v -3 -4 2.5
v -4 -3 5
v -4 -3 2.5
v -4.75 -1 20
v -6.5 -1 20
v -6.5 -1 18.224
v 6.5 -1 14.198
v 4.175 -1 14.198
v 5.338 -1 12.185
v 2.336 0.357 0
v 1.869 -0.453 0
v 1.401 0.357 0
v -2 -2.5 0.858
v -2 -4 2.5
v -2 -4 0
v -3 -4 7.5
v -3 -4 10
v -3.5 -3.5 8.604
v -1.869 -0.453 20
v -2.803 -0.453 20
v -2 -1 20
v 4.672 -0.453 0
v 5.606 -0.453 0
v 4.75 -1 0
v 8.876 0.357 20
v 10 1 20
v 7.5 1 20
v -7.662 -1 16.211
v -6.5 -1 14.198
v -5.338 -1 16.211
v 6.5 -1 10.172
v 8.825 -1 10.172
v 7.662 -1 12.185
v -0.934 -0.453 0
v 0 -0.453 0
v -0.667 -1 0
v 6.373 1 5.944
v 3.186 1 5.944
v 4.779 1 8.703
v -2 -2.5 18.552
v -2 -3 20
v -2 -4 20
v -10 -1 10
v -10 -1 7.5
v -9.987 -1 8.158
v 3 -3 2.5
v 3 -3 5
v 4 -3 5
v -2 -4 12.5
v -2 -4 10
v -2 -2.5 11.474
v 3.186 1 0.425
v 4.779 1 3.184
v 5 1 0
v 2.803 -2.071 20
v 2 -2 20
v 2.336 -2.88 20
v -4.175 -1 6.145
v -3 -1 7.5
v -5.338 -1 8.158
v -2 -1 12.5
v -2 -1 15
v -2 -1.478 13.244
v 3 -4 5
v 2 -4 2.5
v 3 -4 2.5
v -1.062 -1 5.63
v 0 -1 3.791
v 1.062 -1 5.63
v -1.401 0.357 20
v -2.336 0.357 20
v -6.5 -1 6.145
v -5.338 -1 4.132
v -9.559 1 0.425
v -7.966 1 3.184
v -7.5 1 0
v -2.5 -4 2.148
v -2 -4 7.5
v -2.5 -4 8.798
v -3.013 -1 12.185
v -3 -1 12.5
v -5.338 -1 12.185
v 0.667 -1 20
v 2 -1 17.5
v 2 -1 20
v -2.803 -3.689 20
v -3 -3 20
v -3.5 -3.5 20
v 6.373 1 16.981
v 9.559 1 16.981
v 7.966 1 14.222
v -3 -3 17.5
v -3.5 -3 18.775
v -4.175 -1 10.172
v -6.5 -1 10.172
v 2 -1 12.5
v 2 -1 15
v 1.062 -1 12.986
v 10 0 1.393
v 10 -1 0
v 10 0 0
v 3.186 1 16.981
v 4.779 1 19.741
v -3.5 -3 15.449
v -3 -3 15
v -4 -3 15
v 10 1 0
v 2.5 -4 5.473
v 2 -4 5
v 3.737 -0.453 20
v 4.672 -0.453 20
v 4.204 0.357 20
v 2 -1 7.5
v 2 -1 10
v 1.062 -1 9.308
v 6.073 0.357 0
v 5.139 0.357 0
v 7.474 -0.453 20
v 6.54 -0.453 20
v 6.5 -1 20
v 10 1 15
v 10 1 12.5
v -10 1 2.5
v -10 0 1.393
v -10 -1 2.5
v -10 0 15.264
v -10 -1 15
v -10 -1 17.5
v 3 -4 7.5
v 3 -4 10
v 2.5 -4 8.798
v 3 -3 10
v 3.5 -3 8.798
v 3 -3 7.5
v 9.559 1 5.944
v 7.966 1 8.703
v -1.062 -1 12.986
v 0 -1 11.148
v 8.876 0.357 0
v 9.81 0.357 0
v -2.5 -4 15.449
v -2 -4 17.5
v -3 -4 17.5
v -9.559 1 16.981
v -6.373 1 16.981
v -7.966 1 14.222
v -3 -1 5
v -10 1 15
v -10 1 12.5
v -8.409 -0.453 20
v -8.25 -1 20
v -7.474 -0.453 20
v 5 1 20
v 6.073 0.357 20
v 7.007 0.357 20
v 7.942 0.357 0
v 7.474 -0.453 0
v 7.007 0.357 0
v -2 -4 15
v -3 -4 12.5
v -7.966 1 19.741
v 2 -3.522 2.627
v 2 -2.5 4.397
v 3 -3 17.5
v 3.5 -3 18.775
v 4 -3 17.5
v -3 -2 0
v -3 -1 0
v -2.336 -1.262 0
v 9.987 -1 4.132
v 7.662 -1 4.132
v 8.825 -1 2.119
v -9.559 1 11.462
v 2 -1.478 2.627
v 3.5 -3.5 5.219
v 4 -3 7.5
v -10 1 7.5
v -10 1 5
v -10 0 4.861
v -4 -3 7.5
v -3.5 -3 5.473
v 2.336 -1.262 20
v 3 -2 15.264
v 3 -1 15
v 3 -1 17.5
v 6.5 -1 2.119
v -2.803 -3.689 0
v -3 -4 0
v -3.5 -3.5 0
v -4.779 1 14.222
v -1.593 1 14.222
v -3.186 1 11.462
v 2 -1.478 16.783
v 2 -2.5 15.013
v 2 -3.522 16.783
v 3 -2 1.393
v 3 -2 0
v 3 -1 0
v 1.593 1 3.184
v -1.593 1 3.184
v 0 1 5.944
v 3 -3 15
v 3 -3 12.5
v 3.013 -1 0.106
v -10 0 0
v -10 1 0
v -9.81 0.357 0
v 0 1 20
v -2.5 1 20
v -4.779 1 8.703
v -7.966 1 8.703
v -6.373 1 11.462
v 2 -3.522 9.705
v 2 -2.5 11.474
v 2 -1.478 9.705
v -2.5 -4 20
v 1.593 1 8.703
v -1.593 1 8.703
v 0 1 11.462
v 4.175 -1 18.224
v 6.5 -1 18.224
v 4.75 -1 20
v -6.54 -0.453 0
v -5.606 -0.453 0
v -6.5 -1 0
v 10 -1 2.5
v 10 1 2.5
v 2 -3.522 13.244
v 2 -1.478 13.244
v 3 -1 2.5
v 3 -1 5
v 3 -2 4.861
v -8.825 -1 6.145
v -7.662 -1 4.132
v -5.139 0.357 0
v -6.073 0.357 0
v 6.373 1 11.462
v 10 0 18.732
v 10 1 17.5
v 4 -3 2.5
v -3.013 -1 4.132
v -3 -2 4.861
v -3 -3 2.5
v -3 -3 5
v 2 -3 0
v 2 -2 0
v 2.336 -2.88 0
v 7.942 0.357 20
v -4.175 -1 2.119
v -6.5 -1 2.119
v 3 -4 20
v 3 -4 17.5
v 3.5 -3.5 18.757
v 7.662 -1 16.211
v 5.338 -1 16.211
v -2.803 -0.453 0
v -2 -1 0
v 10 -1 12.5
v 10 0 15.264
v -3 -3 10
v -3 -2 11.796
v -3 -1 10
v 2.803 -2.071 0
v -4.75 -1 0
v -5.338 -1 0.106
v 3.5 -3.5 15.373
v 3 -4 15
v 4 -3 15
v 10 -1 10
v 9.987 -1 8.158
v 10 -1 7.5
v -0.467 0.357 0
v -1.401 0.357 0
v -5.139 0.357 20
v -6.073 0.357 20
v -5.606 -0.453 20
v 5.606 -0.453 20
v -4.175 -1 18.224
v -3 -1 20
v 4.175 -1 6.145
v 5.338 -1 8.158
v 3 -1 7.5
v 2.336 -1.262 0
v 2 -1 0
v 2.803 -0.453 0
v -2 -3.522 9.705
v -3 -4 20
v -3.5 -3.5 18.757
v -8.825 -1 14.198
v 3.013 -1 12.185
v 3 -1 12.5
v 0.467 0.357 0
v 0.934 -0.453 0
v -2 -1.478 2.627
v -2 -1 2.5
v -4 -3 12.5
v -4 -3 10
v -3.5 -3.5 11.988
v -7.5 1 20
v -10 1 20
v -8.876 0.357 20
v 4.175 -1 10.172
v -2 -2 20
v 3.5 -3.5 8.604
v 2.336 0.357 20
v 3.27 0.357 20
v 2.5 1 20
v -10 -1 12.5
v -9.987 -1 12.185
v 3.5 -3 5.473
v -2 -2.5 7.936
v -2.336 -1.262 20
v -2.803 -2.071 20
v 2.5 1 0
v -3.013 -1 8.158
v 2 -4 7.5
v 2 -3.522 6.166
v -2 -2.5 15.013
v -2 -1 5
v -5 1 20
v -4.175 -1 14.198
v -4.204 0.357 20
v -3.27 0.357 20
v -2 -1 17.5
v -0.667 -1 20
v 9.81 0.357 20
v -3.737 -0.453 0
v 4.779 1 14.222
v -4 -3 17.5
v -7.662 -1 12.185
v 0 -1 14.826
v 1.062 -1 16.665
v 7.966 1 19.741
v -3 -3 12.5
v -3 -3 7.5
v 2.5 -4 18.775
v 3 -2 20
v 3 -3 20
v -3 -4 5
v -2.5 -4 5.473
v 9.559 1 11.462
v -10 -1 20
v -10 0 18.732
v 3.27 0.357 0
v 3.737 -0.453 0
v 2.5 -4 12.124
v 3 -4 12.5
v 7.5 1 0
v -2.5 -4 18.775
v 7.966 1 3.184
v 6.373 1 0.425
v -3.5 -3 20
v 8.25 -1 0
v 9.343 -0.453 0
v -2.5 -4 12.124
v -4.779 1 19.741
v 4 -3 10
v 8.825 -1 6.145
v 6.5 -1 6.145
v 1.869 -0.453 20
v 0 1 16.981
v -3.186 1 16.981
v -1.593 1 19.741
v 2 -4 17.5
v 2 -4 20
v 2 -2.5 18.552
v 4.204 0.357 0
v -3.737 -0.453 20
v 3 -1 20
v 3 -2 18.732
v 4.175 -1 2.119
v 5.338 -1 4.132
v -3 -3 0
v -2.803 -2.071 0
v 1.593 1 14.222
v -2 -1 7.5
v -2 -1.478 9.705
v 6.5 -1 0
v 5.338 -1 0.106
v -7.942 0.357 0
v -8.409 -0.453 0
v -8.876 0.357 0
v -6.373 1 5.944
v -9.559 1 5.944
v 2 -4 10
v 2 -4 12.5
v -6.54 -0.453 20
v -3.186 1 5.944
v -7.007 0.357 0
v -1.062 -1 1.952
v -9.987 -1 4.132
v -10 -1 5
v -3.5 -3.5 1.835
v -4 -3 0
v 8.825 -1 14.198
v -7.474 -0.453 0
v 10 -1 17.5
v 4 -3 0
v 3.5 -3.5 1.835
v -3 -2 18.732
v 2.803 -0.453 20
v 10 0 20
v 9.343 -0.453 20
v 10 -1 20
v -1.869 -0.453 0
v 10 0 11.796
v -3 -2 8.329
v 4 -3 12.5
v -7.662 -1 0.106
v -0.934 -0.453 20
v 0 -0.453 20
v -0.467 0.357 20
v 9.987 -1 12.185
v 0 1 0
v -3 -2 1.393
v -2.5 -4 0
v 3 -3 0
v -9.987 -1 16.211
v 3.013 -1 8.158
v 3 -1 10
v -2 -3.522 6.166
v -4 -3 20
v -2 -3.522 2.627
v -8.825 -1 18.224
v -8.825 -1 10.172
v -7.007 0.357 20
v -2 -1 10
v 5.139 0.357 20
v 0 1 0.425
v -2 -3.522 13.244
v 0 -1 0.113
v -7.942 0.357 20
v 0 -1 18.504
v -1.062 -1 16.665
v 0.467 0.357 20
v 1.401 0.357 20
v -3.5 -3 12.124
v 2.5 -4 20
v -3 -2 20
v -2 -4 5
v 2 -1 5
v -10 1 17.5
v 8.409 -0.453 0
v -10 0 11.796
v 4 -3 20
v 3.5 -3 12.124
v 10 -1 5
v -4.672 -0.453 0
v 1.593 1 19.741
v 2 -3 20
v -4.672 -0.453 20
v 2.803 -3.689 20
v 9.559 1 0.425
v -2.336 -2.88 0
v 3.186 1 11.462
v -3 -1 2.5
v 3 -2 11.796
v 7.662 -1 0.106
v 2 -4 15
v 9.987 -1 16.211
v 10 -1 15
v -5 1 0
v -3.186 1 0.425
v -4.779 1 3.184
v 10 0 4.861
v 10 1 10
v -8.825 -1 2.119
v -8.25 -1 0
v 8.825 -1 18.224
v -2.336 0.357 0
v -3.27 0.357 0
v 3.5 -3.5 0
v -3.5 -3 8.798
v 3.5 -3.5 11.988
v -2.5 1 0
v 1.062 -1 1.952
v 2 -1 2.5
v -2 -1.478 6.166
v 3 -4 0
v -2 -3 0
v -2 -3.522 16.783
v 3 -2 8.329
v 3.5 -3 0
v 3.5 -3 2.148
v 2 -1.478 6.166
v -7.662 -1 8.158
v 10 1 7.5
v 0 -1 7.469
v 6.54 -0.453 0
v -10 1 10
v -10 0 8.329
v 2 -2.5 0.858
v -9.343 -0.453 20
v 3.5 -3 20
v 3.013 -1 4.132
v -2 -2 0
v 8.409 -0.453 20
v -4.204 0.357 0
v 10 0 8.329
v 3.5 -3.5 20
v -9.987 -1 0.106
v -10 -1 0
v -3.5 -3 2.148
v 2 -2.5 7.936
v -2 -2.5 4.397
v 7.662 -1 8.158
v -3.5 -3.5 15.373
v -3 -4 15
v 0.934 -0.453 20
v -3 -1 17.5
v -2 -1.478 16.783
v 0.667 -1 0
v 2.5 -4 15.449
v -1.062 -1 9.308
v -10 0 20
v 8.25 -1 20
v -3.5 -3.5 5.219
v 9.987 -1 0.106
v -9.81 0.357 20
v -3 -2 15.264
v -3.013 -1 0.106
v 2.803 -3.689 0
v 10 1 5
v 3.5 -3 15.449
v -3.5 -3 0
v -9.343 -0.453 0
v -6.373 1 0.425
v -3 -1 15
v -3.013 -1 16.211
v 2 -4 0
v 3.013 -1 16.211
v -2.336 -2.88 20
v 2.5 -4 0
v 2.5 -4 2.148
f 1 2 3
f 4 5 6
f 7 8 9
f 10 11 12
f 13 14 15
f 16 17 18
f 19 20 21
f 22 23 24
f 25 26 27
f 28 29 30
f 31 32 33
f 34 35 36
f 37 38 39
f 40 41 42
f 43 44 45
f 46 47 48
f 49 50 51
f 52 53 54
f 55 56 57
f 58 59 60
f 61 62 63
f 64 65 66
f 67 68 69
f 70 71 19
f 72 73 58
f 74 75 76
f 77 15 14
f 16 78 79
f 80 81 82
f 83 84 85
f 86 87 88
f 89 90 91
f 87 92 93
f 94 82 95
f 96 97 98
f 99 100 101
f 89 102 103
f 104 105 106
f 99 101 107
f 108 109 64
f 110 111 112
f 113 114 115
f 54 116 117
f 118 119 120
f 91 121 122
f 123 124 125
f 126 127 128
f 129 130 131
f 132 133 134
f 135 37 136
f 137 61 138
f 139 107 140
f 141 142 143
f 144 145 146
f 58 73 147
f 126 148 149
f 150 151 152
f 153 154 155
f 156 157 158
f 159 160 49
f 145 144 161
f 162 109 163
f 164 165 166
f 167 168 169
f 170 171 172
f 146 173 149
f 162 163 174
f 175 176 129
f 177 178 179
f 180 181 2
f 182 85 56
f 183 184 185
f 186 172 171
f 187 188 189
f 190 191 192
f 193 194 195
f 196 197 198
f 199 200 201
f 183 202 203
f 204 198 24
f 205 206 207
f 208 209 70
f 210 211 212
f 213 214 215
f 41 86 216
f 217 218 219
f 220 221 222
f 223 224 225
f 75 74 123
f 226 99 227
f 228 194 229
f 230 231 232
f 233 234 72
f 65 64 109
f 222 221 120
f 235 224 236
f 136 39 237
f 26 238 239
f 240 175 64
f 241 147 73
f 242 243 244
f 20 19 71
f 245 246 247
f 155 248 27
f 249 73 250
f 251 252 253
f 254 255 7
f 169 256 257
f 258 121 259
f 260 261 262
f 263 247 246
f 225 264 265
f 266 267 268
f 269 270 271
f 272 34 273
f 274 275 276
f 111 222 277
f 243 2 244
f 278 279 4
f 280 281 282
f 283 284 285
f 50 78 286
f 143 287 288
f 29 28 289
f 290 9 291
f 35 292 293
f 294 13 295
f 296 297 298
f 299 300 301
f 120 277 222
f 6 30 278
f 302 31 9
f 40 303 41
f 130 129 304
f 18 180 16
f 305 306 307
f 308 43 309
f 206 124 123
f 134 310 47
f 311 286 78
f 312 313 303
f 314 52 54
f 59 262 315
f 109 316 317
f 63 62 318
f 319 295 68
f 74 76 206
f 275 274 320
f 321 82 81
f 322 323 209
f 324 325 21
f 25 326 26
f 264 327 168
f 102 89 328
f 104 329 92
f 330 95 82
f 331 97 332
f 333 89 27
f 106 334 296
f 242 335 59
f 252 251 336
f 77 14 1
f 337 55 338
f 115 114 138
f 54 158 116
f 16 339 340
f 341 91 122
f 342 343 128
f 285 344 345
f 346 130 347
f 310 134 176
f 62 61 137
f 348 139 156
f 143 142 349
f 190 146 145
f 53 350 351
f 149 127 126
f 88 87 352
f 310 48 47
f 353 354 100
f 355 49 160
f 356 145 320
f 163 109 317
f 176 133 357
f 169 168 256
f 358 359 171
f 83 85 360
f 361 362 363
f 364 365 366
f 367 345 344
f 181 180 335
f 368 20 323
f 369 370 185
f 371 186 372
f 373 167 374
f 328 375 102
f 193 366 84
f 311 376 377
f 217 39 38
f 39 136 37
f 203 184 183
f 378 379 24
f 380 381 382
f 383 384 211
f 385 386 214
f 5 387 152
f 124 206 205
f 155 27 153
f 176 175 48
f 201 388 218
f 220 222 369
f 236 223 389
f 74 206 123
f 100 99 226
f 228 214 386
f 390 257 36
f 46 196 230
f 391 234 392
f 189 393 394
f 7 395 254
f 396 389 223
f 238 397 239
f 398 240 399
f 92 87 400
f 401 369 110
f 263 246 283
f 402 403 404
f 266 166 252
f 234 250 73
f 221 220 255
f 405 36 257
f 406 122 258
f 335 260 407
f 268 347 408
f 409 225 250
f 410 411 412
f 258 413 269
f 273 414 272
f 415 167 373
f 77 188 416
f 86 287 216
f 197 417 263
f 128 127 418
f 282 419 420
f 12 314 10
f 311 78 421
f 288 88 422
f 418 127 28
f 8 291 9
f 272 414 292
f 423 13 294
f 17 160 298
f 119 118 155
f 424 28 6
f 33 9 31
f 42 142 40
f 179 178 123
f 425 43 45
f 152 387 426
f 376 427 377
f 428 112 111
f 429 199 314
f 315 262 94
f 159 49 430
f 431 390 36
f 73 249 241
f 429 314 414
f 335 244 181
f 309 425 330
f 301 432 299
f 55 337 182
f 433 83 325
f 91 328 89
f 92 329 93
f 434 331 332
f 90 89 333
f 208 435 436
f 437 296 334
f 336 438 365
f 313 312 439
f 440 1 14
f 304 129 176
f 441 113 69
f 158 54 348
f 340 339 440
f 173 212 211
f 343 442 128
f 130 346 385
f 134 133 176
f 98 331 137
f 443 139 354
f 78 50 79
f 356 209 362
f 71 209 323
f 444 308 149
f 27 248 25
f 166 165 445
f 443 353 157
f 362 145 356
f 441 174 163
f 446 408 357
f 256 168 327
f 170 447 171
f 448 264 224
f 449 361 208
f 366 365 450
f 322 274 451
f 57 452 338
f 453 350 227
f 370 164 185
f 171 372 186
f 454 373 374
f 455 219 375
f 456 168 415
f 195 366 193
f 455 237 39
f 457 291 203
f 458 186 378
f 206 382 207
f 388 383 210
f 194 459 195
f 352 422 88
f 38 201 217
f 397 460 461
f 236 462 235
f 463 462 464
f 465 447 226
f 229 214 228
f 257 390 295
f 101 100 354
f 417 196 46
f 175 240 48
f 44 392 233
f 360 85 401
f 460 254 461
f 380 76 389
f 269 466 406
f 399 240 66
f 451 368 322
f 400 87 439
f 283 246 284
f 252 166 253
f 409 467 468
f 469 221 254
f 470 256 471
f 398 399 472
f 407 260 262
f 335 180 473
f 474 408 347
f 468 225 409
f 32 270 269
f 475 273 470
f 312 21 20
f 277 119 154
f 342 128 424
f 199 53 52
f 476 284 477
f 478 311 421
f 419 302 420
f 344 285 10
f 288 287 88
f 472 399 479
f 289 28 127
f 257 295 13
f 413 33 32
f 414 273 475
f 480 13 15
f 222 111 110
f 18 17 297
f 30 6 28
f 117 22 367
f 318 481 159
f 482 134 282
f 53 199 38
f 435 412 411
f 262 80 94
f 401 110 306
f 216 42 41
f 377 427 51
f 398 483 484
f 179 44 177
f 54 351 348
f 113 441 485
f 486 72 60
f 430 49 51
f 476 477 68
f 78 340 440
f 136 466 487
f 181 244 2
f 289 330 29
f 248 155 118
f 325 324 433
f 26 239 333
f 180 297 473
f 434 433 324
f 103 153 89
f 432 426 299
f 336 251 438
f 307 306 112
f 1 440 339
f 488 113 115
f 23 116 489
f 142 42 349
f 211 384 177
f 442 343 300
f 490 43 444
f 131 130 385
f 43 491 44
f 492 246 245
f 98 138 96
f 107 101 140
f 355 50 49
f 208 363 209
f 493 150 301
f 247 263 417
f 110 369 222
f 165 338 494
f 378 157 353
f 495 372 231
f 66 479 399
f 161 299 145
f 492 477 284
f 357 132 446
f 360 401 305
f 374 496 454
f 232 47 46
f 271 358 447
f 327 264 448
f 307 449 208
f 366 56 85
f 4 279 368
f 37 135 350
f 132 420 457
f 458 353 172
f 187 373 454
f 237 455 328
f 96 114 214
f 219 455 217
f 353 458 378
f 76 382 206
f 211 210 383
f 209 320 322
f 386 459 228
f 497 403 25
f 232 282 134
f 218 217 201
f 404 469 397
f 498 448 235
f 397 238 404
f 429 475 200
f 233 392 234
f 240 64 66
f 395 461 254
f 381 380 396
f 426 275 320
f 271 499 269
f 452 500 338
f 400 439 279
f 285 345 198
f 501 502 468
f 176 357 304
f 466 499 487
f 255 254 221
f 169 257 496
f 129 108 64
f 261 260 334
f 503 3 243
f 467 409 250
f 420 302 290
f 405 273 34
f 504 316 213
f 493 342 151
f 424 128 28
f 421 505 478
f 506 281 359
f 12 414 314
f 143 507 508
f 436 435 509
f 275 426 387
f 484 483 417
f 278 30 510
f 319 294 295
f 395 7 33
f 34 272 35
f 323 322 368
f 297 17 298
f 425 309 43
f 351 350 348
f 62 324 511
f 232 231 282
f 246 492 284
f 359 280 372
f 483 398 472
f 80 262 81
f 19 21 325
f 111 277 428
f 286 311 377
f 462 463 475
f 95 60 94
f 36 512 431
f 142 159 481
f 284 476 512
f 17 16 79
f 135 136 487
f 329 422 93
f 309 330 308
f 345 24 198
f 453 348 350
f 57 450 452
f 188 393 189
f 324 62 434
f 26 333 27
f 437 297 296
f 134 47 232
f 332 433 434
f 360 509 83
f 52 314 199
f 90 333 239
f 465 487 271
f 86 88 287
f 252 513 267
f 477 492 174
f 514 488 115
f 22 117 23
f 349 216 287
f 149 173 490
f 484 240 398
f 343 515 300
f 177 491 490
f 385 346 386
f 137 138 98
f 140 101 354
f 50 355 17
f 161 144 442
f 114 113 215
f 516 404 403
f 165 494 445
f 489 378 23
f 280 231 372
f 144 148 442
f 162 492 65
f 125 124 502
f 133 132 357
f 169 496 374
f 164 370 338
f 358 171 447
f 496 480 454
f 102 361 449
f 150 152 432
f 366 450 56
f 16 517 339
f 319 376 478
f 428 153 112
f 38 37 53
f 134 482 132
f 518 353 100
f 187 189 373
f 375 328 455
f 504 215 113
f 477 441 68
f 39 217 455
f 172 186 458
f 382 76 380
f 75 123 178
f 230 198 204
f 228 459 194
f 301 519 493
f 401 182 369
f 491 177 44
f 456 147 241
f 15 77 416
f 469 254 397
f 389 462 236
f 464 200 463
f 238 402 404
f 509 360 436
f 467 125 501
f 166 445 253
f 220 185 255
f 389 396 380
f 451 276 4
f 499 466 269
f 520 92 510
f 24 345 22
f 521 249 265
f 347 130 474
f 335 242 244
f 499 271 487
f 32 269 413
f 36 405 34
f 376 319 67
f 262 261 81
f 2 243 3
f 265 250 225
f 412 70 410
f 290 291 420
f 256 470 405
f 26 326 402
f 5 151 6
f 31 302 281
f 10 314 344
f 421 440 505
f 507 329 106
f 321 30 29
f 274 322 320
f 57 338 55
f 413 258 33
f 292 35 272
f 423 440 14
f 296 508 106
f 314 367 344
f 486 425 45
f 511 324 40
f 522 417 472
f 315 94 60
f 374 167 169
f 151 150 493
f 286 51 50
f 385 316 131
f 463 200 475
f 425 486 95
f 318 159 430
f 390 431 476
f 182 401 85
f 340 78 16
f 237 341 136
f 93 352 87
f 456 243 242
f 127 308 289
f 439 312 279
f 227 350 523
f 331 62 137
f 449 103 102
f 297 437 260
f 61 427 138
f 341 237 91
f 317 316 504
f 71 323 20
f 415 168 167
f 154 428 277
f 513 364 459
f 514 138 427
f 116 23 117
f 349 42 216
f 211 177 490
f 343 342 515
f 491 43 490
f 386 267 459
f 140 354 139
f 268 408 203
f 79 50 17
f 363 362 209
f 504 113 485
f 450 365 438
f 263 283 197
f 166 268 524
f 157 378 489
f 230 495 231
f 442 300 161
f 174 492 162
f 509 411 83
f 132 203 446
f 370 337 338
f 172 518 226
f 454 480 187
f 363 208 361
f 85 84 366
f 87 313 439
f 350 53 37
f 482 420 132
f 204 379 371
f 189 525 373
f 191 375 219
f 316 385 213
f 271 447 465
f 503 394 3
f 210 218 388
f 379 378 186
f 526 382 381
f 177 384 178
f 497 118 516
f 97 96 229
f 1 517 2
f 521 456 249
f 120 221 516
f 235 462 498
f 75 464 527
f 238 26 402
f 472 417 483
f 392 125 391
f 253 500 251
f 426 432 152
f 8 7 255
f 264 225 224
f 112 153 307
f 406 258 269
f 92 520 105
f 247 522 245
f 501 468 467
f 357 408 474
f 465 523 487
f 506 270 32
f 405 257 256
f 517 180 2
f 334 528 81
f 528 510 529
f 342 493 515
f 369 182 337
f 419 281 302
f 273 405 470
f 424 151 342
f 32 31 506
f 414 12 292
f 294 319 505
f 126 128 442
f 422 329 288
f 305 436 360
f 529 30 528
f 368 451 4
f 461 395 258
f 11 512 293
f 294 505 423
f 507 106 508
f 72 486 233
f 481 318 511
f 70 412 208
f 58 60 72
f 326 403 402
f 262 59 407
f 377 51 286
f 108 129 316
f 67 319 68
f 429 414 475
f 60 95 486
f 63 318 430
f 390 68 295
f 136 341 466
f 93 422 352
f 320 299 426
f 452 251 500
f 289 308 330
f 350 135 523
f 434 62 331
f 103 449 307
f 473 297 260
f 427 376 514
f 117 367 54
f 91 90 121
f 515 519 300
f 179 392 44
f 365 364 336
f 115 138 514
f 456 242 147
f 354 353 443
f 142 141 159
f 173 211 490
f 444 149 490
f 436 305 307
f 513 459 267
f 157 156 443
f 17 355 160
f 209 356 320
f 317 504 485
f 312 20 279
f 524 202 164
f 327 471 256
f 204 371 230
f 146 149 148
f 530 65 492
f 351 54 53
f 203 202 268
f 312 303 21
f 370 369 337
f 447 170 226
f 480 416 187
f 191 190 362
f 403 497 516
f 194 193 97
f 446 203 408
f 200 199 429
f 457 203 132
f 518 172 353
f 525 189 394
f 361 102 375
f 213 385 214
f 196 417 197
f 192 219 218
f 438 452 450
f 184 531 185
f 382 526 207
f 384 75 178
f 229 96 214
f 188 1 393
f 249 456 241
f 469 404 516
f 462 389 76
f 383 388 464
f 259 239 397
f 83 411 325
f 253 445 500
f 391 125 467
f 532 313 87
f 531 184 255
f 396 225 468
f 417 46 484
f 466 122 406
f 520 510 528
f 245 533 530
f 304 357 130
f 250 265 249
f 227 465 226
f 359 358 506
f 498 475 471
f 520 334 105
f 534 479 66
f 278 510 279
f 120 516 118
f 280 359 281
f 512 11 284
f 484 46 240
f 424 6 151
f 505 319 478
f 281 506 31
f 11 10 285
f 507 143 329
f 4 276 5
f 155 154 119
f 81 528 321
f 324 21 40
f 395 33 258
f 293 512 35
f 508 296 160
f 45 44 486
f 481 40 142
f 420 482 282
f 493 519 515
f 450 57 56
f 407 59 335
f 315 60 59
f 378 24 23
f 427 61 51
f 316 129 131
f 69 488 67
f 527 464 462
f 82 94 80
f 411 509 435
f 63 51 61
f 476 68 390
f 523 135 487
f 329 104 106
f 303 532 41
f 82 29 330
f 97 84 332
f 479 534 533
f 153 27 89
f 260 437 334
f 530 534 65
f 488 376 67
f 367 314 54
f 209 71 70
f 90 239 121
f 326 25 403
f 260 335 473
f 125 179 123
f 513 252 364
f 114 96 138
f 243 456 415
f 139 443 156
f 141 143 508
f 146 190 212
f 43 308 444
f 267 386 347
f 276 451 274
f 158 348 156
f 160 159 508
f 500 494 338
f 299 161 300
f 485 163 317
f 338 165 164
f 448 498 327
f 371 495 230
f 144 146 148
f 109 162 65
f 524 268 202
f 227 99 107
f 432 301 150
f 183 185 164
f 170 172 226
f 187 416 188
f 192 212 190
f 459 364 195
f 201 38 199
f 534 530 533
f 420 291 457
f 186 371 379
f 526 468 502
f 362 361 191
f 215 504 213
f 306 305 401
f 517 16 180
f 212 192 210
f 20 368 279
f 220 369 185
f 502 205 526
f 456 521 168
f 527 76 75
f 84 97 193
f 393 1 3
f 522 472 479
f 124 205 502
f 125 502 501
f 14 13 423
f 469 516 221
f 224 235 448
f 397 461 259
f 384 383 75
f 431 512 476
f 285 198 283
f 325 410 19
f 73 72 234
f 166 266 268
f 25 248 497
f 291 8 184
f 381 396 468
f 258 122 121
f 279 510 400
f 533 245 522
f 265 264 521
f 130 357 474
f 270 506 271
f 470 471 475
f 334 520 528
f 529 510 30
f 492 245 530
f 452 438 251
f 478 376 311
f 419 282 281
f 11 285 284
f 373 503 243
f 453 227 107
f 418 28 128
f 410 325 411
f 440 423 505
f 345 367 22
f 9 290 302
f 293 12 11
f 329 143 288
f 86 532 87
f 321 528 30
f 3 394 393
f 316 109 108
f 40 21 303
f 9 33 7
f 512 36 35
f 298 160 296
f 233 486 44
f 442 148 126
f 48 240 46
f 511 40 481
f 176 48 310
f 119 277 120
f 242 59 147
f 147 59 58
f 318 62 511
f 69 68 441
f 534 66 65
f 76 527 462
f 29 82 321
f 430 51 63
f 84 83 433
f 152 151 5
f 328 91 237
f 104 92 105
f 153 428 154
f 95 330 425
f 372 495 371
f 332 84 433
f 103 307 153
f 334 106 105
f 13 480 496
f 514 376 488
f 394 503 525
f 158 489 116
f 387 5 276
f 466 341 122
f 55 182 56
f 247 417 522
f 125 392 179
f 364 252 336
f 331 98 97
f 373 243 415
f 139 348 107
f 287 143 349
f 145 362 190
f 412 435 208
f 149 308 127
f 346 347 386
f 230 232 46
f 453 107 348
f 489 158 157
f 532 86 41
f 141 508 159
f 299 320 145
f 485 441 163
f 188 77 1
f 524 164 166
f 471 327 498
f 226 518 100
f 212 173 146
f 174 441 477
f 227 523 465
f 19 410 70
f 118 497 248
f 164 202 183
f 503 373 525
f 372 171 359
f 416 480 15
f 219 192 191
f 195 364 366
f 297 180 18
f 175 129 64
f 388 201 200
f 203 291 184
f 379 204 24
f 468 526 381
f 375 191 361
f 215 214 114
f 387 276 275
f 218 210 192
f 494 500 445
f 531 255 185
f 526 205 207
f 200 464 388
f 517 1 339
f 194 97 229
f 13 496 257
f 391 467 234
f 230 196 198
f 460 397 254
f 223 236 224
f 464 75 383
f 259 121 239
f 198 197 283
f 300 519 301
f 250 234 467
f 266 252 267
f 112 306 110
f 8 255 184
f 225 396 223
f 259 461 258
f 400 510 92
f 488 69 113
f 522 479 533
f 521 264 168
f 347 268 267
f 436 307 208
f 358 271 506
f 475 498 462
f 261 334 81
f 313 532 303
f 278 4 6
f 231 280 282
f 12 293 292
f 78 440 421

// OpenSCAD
// CSG file generated from FreeCAD 0.15.4671 (Git)
group() {
 group(){
polyhedron ( points = [[-10.000000,1.000000,0.000000],[-10.000000,1.000000,20.000000],[10.000000,1.000000,0.000000],[10.000000,1.000000,20.000000],[10.000000,-1.000000,0.000000],[10.000000,-1.000000,20.000000],[3.000000,-1.000000,0.000000],[3.000000,-1.000000,20.000000],[3.000000,-3.000000,0.000000],[3.000000,-3.000000,20.000000],[4.000000,-3.000000,0.000000],[4.000000,-3.000000,20.000000],[3.000000,-4.000000,0.000000],[3.000000,-4.000000,20.000000],[2.000000,-4.000000,0.000000],[2.000000,-4.000000,20.000000],[2.000000,-1.000000,0.000000],[2.000000,-1.000000,20.000000],[-2.000000,-1.000000,0.000000],[-2.000000,-1.000000,20.000000],[-2.000000,-4.000000,0.000000],[-2.000000,-4.000000,20.000000],[-3.000000,-4.000000,0.000000],[-3.000000,-4.000000,20.000000],[-4.000000,-3.000000,0.000000],[-4.000000,-3.000000,20.000000],[-3.000000,-3.000000,0.000000],[-3.000000,-3.000000,20.000000],[-3.000000,-1.000000,0.000000],[-3.000000,-1.000000,20.000000],[-10.000000,-1.000000,0.000000],[-10.000000,-1.000000,20.000000],[-10.000000,1.000000,2.500000],[-10.000000,1.000000,5.000000],[-10.000000,1.000000,7.500000],[-10.000000,1.000000,10.000000],[-10.000000,1.000000,12.500000],[-10.000000,1.000000,15.000000],[-10.000000,1.000000,17.500000],[10.000000,1.000000,2.500000],[10.000000,1.000000,5.000000],[10.000000,1.000000,7.500000],[10.000000,1.000000,10.000000],[10.000000,1.000000,12.500000],[10.000000,1.000000,15.000000],[10.000000,1.000000,17.500000],[-7.500000,1.000000,0.000000],[-5.000000,1.000000,0.000000],[-2.500000,1.000000,0.000000],[0.000000,1.000000,0.000000],[2.500000,1.000000,0.000000],[5.000000,1.000000,0.000000],[7.500000,1.000000,0.000000],[-7.500000,1.000000,20.000000],[-5.000000,1.000000,20.000000],[-2.500000,1.000000,20.000000],[0.000000,1.000000,20.000000],[2.500000,1.000000,20.000000],[5.000000,1.000000,20.000000],[7.500000,1.000000,20.000000],[10.000000,-1.000000,2.500000],[10.000000,-1.000000,5.000000],[10.000000,-1.000000,7.500000],[10.000000,-1.000000,10.000000],[10.000000,-1.000000,12.500000],[10.000000,-1.000000,15.000000],[10.000000,-1.000000,17.500000],[10.000000,0.000000,0.000000],[10.000000,0.000000,20.000000],[3.000000,-1.000000,2.500000],[3.000000,-1.000000,5.000000],[3.000000,-1.000000,7.500000],[3.000000,-1.000000,10.000000],[3.000000,-1.000000,12.500000],[3.000000,-1.000000,15.000000],[3.000000,-1.000000,17.500000],[8.250000,-1.000000,0.000000],[6.500000,-1.000000,0.000000],[4.750000,-1.000000,0.000000],[8.250000,-1.000000,20.000000],[6.500000,-1.000000,20.000000],[4.750000,-1.000000,20.000000],[3.000000,-3.000000,2.500000],[3.000000,-3.000000,5.000000],[3.000000,-3.000000,7.500000],[3.000000,-3.000000,10.000000],[3.000000,-3.000000,12.500000],[3.000000,-3.000000,15.000000],[3.000000,-3.000000,17.500000],[3.000000,-2.000000,0.000000],[3.000000,-2.000000,20.000000],[4.000000,-3.000000,2.500000],[4.000000,-3.000000,5.000000],[4.000000,-3.000000,7.500000],[4.000000,-3.000000,10.000000],[4.000000,-3.000000,12.500000],[4.000000,-3.000000,15.000000],[4.000000,-3.000000,17.500000],[3.500000,-3.000000,0.000000],[3.500000,-3.000000,20.000000],[3.000000,-4.000000,2.500000],[3.000000,-4.000000,5.000000],[3.000000,-4.000000,7.500000],[3.000000,-4.000000,10.000000],[3.000000,-4.000000,12.500000],[3.000000,-4.000000,15.000000],[3.000000,-4.000000,17.500000],[3.500000,-3.500000,0.000000],[3.500000,-3.500000,20.000000],[2.000000,-4.000000,2.500000],[2.000000,-4.000000,5.000000],[2.000000,-4.000000,7.500000],[2.000000,-4.000000,10.000000],[2.000000,-4.000000,12.500000],[2.000000,-4.000000,15.000000],[2.000000,-4.000000,17.500000],[2.500000,-4.000000,0.000000],[2.500000,-4.000000,20.000000],[2.000000,-1.000000,2.500000],[2.000000,-1.000000,5.000000],[2.000000,-1.000000,7.500000],[2.000000,-1.000000,10.000000],[2.000000,-1.000000,12.500000],[2.000000,-1.000000,15.000000],[2.000000,-1.000000,17.500000],[2.000000,-2.000000,0.000000],[2.000000,-3.000000,0.000000],[2.000000,-2.000000,20.000000],[2.000000,-3.000000,20.000000],[-2.000000,-1.000000,2.500000],[-2.000000,-1.000000,5.000000],[-2.000000,-1.000000,7.500000],[-2.000000,-1.000000,10.000000],[-2.000000,-1.000000,12.500000],[-2.000000,-1.000000,15.000000],[-2.000000,-1.000000,17.500000],[-0.666667,-1.000000,0.000000],[0.666667,-1.000000,0.000000],[-0.666667,-1.000000,20.000000],[0.666667,-1.000000,20.000000],[-2.000000,-4.000000,2.500000],[-2.000000,-4.000000,5.000000],[-2.000000,-4.000000,7.500000],[-2.000000,-4.000000,10.000000],[-2.000000,-4.000000,12.500000],[-2.000000,-4.000000,15.000000],[-2.000000,-4.000000,17.500000],[-2.000000,-3.000000,0.000000],[-2.000000,-2.000000,0.000000],[-2.000000,-3.000000,20.000000],[-2.000000,-2.000000,20.000000],[-3.000000,-4.000000,2.500000],[-3.000000,-4.000000,5.000000],[-3.000000,-4.000000,7.500000],[-3.000000,-4.000000,10.000000],[-3.000000,-4.000000,12.500000],[-3.000000,-4.000000,15.000000],[-3.000000,-4.000000,17.500000],[-2.500000,-4.000000,0.000000],[-2.500000,-4.000000,20.000000],[-4.000000,-3.000000,2.500000],[-4.000000,-3.000000,5.000000],[-4.000000,-3.000000,7.500000],[-4.000000,-3.000000,10.000000],[-4.000000,-3.000000,12.500000],[-4.000000,-3.000000,15.000000],[-4.000000,-3.000000,17.500000],[-3.500000,-3.500000,0.000000],[-3.500000,-3.500000,20.000000],[-3.000000,-3.000000,2.500000],[-3.000000,-3.000000,5.000000],[-3.000000,-3.000000,7.500000],[-3.000000,-3.000000,10.000000],[-3.000000,-3.000000,12.500000],[-3.000000,-3.000000,15.000000],[-3.000000,-3.000000,17.500000],[-3.500000,-3.000000,0.000000],[-3.500000,-3.000000,20.000000],[-3.000000,-1.000000,2.500000],[-3.000000,-1.000000,5.000000],[-3.000000,-1.000000,7.500000],[-3.000000,-1.000000,10.000000],[-3.000000,-1.000000,12.500000],[-3.000000,-1.000000,15.000000],[-3.000000,-1.000000,17.500000],[-3.000000,-2.000000,0.000000],[-3.000000,-2.000000,20.000000],[-10.000000,-1.000000,2.500000],[-10.000000,-1.000000,5.000000],[-10.000000,-1.000000,7.500000],[-10.000000,-1.000000,10.000000],[-10.000000,-1.000000,12.500000],[-10.000000,-1.000000,15.000000],[-10.000000,-1.000000,17.500000],[-8.250000,-1.000000,0.000000],[-6.500000,-1.000000,0.000000],[-4.750000,-1.000000,0.000000],[-8.250000,-1.000000,20.000000],[-6.500000,-1.000000,20.000000],[-4.750000,-1.000000,20.000000],[-10.000000,0.000000,0.000000],[-10.000000,0.000000,20.000000],[-6.372595,1.000000,11.462341],[6.372595,1.000000,11.462341],[0.000000,1.000000,0.424682],[6.372595,1.000000,0.424682],[-6.372595,1.000000,0.424682],[9.558893,1.000000,5.943511],[9.558893,1.000000,16.981171],[3.186298,1.000000,16.981171],[-9.558893,1.000000,5.943511],[-3.186298,1.000000,16.981171],[-9.558893,1.000000,16.981171],[0.000000,1.000000,11.462341],[-3.186298,1.000000,5.943511],[3.186298,1.000000,5.943511],[9.558893,1.000000,0.424682],[3.186298,1.000000,0.424682],[-3.186298,1.000000,0.424682],[-9.558893,1.000000,0.424682],[7.965744,1.000000,8.702927],[9.558893,1.000000,11.462341],[7.965744,1.000000,14.221756],[4.779447,1.000000,14.221756],[6.372595,1.000000,16.981171],[7.965744,1.000000,19.740585],[4.779447,1.000000,19.740585],[1.593149,1.000000,19.740585],[-7.965744,1.000000,8.702927],[-9.558893,1.000000,11.462341],[-4.779447,1.000000,14.221756],[-7.965744,1.000000,14.221756],[-6.372595,1.000000,16.981171],[-1.593149,1.000000,19.740585],[-4.779447,1.000000,19.740585],[-7.965744,1.000000,19.740585],[0.000000,1.000000,16.981171],[-1.593149,1.000000,14.221756],[-3.186298,1.000000,11.462341],[1.593149,1.000000,14.221756],[3.186298,1.000000,11.462341],[-4.779447,1.000000,8.702927],[-6.372595,1.000000,5.943511],[-7.965744,1.000000,3.184097],[-4.779447,1.000000,3.184097],[-1.593149,1.000000,3.184097],[4.779447,1.000000,8.702927],[6.372595,1.000000,5.943511],[1.593149,1.000000,3.184097],[4.779447,1.000000,3.184097],[7.965744,1.000000,3.184097],[0.000000,1.000000,5.943511],[1.593149,1.000000,8.702927],[-1.593149,1.000000,8.702927],[10.000000,0.000000,8.328719],[10.000000,0.000000,15.264359],[10.000000,0.000000,1.393078],[10.000000,0.000000,4.860898],[10.000000,0.000000,18.732180],[10.000000,0.000000,11.796539],[6.500000,-1.000000,6.145355],[8.824505,-1.000000,2.119193],[4.175495,-1.000000,2.119193],[4.175495,-1.000000,18.223839],[8.824505,-1.000000,18.223839],[6.500000,-1.000000,14.197678],[8.824505,-1.000000,10.171516],[4.175495,-1.000000,10.171516],[3.013242,-1.000000,0.106113],[3.013242,-1.000000,4.132274],[5.337748,-1.000000,4.132274],[4.175495,-1.000000,6.145355],[9.986758,-1.000000,0.106113],[7.662252,-1.000000,4.132274],[9.986758,-1.000000,4.132274],[8.824505,-1.000000,6.145355],[6.500000,-1.000000,2.119193],[7.662252,-1.000000,0.106113],[5.337748,-1.000000,0.106113],[3.013242,-1.000000,16.210758],[9.986758,-1.000000,16.210758],[6.500000,-1.000000,18.223839],[7.662252,-1.000000,16.210758],[8.824505,-1.000000,14.197678],[5.337748,-1.000000,16.210758],[4.175495,-1.000000,14.197678],[9.986758,-1.000000,12.184597],[9.986758,-1.000000,8.158435],[7.662252,-1.000000,8.158435],[3.013242,-1.000000,12.184597],[5.337748,-1.000000,8.158435],[3.013242,-1.000000,8.158435],[6.500000,-1.000000,10.171516],[5.337748,-1.000000,12.184597],[7.662252,-1.000000,12.184597],[3.000000,-2.000000,8.328719],[3.000000,-2.000000,15.264359],[3.000000,-2.000000,1.393078],[3.000000,-2.000000,4.860898],[3.000000,-2.000000,18.732180],[3.000000,-2.000000,11.796539],[3.500000,-3.000000,8.798334],[3.500000,-3.000000,15.449167],[3.500000,-3.000000,2.147501],[3.500000,-3.000000,5.472918],[3.500000,-3.000000,18.774584],[3.500000,-3.000000,12.123751],[3.500000,-3.500000,8.603813],[3.500000,-3.500000,15.372617],[3.500000,-3.500000,1.835009],[3.500000,-3.500000,5.219411],[3.500000,-3.500000,18.757019],[3.500000,-3.500000,11.988215],[2.500000,-4.000000,8.798334],[2.500000,-4.000000,15.449167],[2.500000,-4.000000,2.147501],[2.500000,-4.000000,5.472918],[2.500000,-4.000000,18.774584],[2.500000,-4.000000,12.123751],[2.000000,-2.500000,7.935635],[2.000000,-2.500000,0.857998],[2.000000,-2.500000,15.013272],[2.000000,-3.521569,6.166226],[2.000000,-1.478431,6.166226],[2.000000,-2.500000,4.396817],[2.000000,-1.478431,2.627408],[2.000000,-3.521569,2.627408],[2.000000,-2.500000,18.552090],[2.000000,-1.478431,16.782681],[2.000000,-3.521569,16.782681],[2.000000,-1.478431,9.705045],[2.000000,-3.521569,9.705045],[2.000000,-2.500000,11.474454],[2.000000,-3.521569,13.243863],[2.000000,-1.478431,13.243863],[0.000000,-1.000000,7.469348],[0.000000,-1.000000,14.825583],[0.000000,-1.000000,0.113114],[1.061781,-1.000000,5.630290],[-1.061781,-1.000000,5.630290],[0.000000,-1.000000,3.791231],[-1.061781,-1.000000,1.952172],[1.061781,-1.000000,1.952172],[0.000000,-1.000000,18.503700],[-1.061781,-1.000000,16.664642],[1.061781,-1.000000,16.664642],[-1.061781,-1.000000,9.308407],[1.061781,-1.000000,9.308407],[0.000000,-1.000000,11.147466],[1.061781,-1.000000,12.986525],[-1.061781,-1.000000,12.986525],[-2.000000,-2.500000,7.935635],[-2.000000,-2.500000,0.857998],[-2.000000,-2.500000,15.013272],[-2.000000,-1.478431,6.166226],[-2.000000,-3.521569,6.166226],[-2.000000,-2.500000,4.396817],[-2.000000,-3.521569,2.627408],[-2.000000,-1.478431,2.627408],[-2.000000,-2.500000,18.552090],[-2.000000,-3.521569,16.782681],[-2.000000,-1.478431,16.782681],[-2.000000,-3.521569,9.705045],[-2.000000,-1.478431,9.705045],[-2.000000,-2.500000,11.474454],[-2.000000,-1.478431,13.243863],[-2.000000,-3.521569,13.243863],[-2.500000,-4.000000,8.798334],[-2.500000,-4.000000,15.449167],[-2.500000,-4.000000,2.147501],[-2.500000,-4.000000,5.472918],[-2.500000,-4.000000,18.774584],[-2.500000,-4.000000,12.123751],[-3.500000,-3.500000,8.603813],[-3.500000,-3.500000,15.372617],[-3.500000,-3.500000,1.835009],[-3.500000,-3.500000,5.219411],[-3.500000,-3.500000,18.757019],[-3.500000,-3.500000,11.988215],[-3.500000,-3.000000,8.798334],[-3.500000,-3.000000,15.449167],[-3.500000,-3.000000,2.147501],[-3.500000,-3.000000,5.472918],[-3.500000,-3.000000,18.774584],[-3.500000,-3.000000,12.123751],[-3.000000,-2.000000,8.328719],[-3.000000,-2.000000,15.264359],[-3.000000,-2.000000,1.393078],[-3.000000,-2.000000,4.860898],[-3.000000,-2.000000,18.732180],[-3.000000,-2.000000,11.796539],[-6.500000,-1.000000,6.145355],[-8.824505,-1.000000,2.119193],[-4.175495,-1.000000,2.119193],[-4.175495,-1.000000,18.223839],[-8.824505,-1.000000,18.223839],[-6.500000,-1.000000,14.197678],[-8.824505,-1.000000,10.171516],[-4.175495,-1.000000,10.171516],[-3.013242,-1.000000,0.106113],[-3.013242,-1.000000,4.132274],[-5.337748,-1.000000,4.132274],[-4.175495,-1.000000,6.145355],[-9.986758,-1.000000,0.106113],[-7.662252,-1.000000,4.132274],[-9.986758,-1.000000,4.132274],[-8.824505,-1.000000,6.145355],[-6.500000,-1.000000,2.119193],[-7.662252,-1.000000,0.106113],[-5.337748,-1.000000,0.106113],[-3.013242,-1.000000,16.210758],[-9.986758,-1.000000,16.210758],[-6.500000,-1.000000,18.223839],[-7.662252,-1.000000,16.210758],[-8.824505,-1.000000,14.197678],[-5.337748,-1.000000,16.210758],[-4.175495,-1.000000,14.197678],[-9.986758,-1.000000,12.184597],[-9.986758,-1.000000,8.158435],[-7.662252,-1.000000,8.158435],[-3.013242,-1.000000,12.184597],[-5.337748,-1.000000,8.158435],[-3.013242,-1.000000,8.158435],[-6.500000,-1.000000,10.171516],[-5.337748,-1.000000,12.184597],[-7.662252,-1.000000,12.184597],[-10.000000,0.000000,8.328719],[-10.000000,0.000000,15.264359],[-10.000000,0.000000,1.393078],[-10.000000,0.000000,4.860898],[-10.000000,0.000000,18.732180],[-10.000000,0.000000,11.796539],[-2.802904,-3.689041,0.000000],[2.802904,-3.689041,0.000000],[4.671506,-0.452527,0.000000],[2.802904,-0.452527,0.000000],[6.540108,-0.452527,0.000000],[8.408710,-0.452527,0.000000],[-2.802904,-0.452527,0.000000],[-4.671506,-0.452527,0.000000],[-8.408710,-0.452527,0.000000],[-6.540108,-0.452527,0.000000],[-0.934301,-0.452527,0.000000],[0.934301,-0.452527,0.000000],[4.204355,0.356602,0.000000],[3.270054,0.356602,0.000000],[3.737205,-0.452527,0.000000],[2.335753,-1.261656,0.000000],[2.802904,-2.070784,0.000000],[2.335753,-2.879913,0.000000],[5.605807,-0.452527,0.000000],[5.138657,0.356602,0.000000],[6.072958,0.356602,0.000000],[7.007259,0.356602,0.000000],[9.343012,-0.452527,0.000000],[7.941560,0.356602,0.000000],[8.875861,0.356602,0.000000],[9.810163,0.356602,0.000000],[7.474410,-0.452527,0.000000],[-3.270054,0.356602,0.000000],[-4.204355,0.356602,0.000000],[-3.737205,-0.452527,0.000000],[-2.335753,-1.261656,0.000000],[-2.802904,-2.070784,0.000000],[-2.335753,-2.879913,0.000000],[-9.343012,-0.452527,0.000000],[-9.810163,0.356602,0.000000],[-8.875861,0.356602,0.000000],[-7.941560,0.356602,0.000000],[-5.605807,-0.452527,0.000000],[-7.007259,0.356602,0.000000],[-6.072958,0.356602,0.000000],[-5.138657,0.356602,0.000000],[-7.474410,-0.452527,0.000000],[-1.868602,-0.452527,0.000000],[-2.335753,0.356602,0.000000],[-1.401452,0.356602,0.000000],[-0.467151,0.356602,0.000000],[1.868602,-0.452527,0.000000],[0.467151,0.356602,0.000000],[1.401452,0.356602,0.000000],[2.335753,0.356602,0.000000],[0.000000,-0.452527,0.000000],[-2.802904,-3.689041,20.000000],[2.802904,-3.689041,20.000000],[4.671506,-0.452527,20.000000],[2.802904,-0.452527,20.000000],[6.540108,-0.452527,20.000000],[8.408710,-0.452527,20.000000],[-2.802904,-0.452527,20.000000],[-4.671506,-0.452527,20.000000],[-8.408710,-0.452527,20.000000],[-6.540108,-0.452527,20.000000],[-0.934301,-0.452527,20.000000],[0.934301,-0.452527,20.000000],[4.204355,0.356602,20.000000],[3.270054,0.356602,20.000000],[3.737205,-0.452527,20.000000],[2.335753,-1.261656,20.000000],[2.802904,-2.070784,20.000000],[2.335753,-2.879913,20.000000],[5.605807,-0.452527,20.000000],[5.138657,0.356602,20.000000],[6.072958,0.356602,20.000000],[7.007259,0.356602,20.000000],[9.343012,-0.452527,20.000000],[7.941560,0.356602,20.000000],[8.875861,0.356602,20.000000],[9.810163,0.356602,20.000000],[7.474410,-0.452527,20.000000],[-3.270054,0.356602,20.000000],[-4.204355,0.356602,20.000000],[-3.737205,-0.452527,20.000000],[-2.335753,-1.261656,20.000000],[-2.802904,-2.070784,20.000000],[-2.335753,-2.879913,20.000000],[-9.343012,-0.452527,20.000000],[-9.810163,0.356602,20.000000],[-8.875861,0.356602,20.000000],[-7.941560,0.356602,20.000000],[-5.605807,-0.452527,20.000000],[-7.007259,0.356602,20.000000],[-6.072958,0.356602,20.000000],[-5.138657,0.356602,20.000000],[-7.474410,-0.452527,20.000000],[-1.868602,-0.452527,20.000000],[-2.335753,0.356602,20.000000],[-1.401452,0.356602,20.000000],[-0.467151,0.356602,20.000000],[1.868602,-0.452527,20.000000],[0.467151,0.356602,20.000000],[1.401452,0.356602,20.000000],[2.335753,0.356602,20.000000],[0.000000,-0.452527,20.000000]], triangles = [[151,161,160],[199,198,412],[265,285,293],[481,478,480],[352,140,20],[153,154,373],[525,489,19],[434,450,78],[507,3,59],[413,396,415],[292,266,294],[442,482,136],[247,215,246],[359,149,21],[190,189,418],[82,83,92],[144,143,364],[217,249,51],[499,127,500],[402,180,421],[133,134,365],[101,109,100],[339,340,338],[527,526,525],[391,401,402],[219,243,46],[369,20,140],[153,142,367],[420,182,424],[139,124,17],[483,27,168],[224,208,222],[27,175,383],[398,424,423],[122,123,349],[256,4,67],[224,209,226],[380,174,165],[256,67,2],[316,110,101],[497,485,495],[120,121,347],[51,452,451],[509,487,80],[222,44,43],[32,428,187],[427,192,193],[102,103,313],[85,301,84],[207,247,220],[350,133,348],[456,2,457],[368,146,157],[212,232,231],[402,401,179],[427,37,36],[491,197,524],[58,503,504],[455,458,453],[145,155,144],[232,212,235],[326,110,324],[88,305,97],[185,28,462],[274,273,261],[231,229,36],[326,324,325],[310,93,102],[34,33,429],[162,382,161],[498,17,127],[296,74,75],[276,261,273],[432,22,167],[230,237,238],[328,321,329],[297,89,6],[248,245,251],[296,87,86],[268,6,78],[200,0,466],[56,55,527],[241,228,202],[331,332,330],[149,483,159],[252,253,213],[263,281,81],[441,469,195],[243,219,32],[60,256,39],[333,321,334],[69,70,298],[406,404,391],[109,101,110],[81,281,80],[472,469,471],[220,246,203],[3,258,45],[91,310,101],[400,179,401],[388,169,170],[489,525,526],[126,125,449],[504,506,59],[393,401,407],[13,106,311],[282,284,265],[462,438,18],[64,44,255],[172,390,181],[448,449,125],[195,196,409],[308,105,96],[63,287,62],[477,442,476],[523,522,520],[485,81,501],[169,161,170],[394,29,199],[271,290,71],[447,16,435],[143,142,362],[157,23,377],[396,413,414],[289,293,73],[482,479,443],[358,352,129],[164,163,378],[53,1,518],[80,501,81],[412,415,394],[267,292,293],[359,150,149],[103,102,307],[373,162,153],[532,496,57],[191,190,417],[0,428,32],[84,304,83],[351,362,142],[513,514,150],[50,217,51],[180,181,422],[110,111,322],[365,134,353],[130,129,340],[219,46,0],[522,523,54],[416,424,182],[511,510,55],[135,138,19],[507,508,3],[196,461,28],[209,224,223],[380,166,175],[425,423,424],[336,123,345],[225,224,59],[165,173,164],[388,171,180],[106,13,317],[369,140,151],[90,499,9],[347,121,348],[51,453,452],[153,152,370],[221,222,43],[31,430,193],[435,445,446],[318,103,104],[304,84,93],[134,133,350],[52,456,455],[157,146,371],[230,231,232],[249,250,205],[36,192,427],[168,27,177],[304,92,83],[76,454,4],[372,144,155],[234,232,54],[324,110,322],[93,301,94],[462,28,438],[275,260,273],[139,17,529],[236,211,233],[115,15,327],[444,446,445],[382,162,171],[512,489,510],[7,299,75],[262,276,270],[26,185,463],[223,239,209],[328,327,124],[351,131,363],[252,246,215],[246,220,247],[86,74,296],[77,278,78],[468,440,467],[242,210,228],[112,113,332],[198,492,524],[428,0,200],[504,59,58],[93,310,92],[251,214,253],[263,81,7],[471,441,470],[219,0,32],[4,256,60],[333,332,113],[341,18,136],[82,297,69],[405,404,188],[167,375,24],[265,283,282],[473,470,441],[258,66,45],[10,91,309],[175,27,389],[486,7,497],[448,125,447],[68,505,5],[308,97,106],[404,407,401],[281,263,284],[474,136,18],[259,43,64],[171,172,385],[96,104,95],[408,195,407],[493,533,528],[64,286,63],[476,49,477],[387,185,26],[369,22,158],[483,23,159],[89,8,448],[193,192,411],[71,291,72],[480,50,481],[351,142,355],[377,168,25],[411,192,413],[285,73,293],[477,49,479],[357,352,358],[154,155,378],[487,509,504],[395,413,412],[294,293,292],[21,146,359],[429,33,32],[397,190,418],[524,492,521],[131,132,363],[502,495,485],[204,248,50],[422,181,398],[145,144,366],[337,341,136],[401,393,400],[204,50,49],[171,170,382],[417,397,425],[518,519,53],[499,90,498],[343,139,138],[222,223,224],[175,166,383],[344,336,345],[208,224,225],[56,530,531],[384,164,173],[317,117,15],[514,513,186],[141,151,140],[307,102,93],[119,120,338],[453,51,52],[370,152,141],[229,202,228],[430,38,193],[103,318,112],[84,301,93],[349,336,350],[437,456,454],[142,143,367],[234,55,211],[526,55,510],[431,191,36],[59,506,507],[97,305,11],[437,76,458],[211,232,234],[119,325,324],[306,95,94],[438,28,461],[274,61,273],[439,196,469],[227,236,56],[327,15,128],[511,523,490],[500,484,9],[216,250,39],[299,88,75],[273,270,276],[464,26,463],[240,213,239],[178,28,387],[329,327,328],[240,203,246],[300,73,86],[277,276,77],[0,467,466],[214,242,241],[321,114,329],[177,25,168],[215,251,252],[66,280,65],[471,47,472],[218,47,244],[257,61,60],[334,332,333],[18,341,129],[67,4,454],[8,297,82],[310,91,92],[189,188,406],[529,17,486],[280,282,65],[468,46,470],[63,42,259],[309,91,100],[490,512,511],[389,27,186],[447,125,16],[106,97,311],[408,392,194],[264,281,282],[475,438,459],[10,309,107],[385,172,181],[171,162,379],[312,95,104],[194,195,408],[266,287,63],[48,476,475],[513,19,489],[501,487,503],[31,193,395],[248,249,217],[342,16,118],[354,351,355],[291,267,72],[445,435,481],[377,23,168],[107,309,12],[414,413,192],[18,129,352],[286,294,266],[49,476,48],[147,352,20],[81,485,497],[373,154,163],[415,412,413],[451,434,444],[353,360,145],[295,84,71],[249,248,215],[530,528,533],[181,420,398],[486,497,496],[159,21,149],[363,132,364],[10,98,303],[429,189,34],[51,205,52],[120,119,323],[419,391,421],[366,144,364],[342,118,340],[142,370,141],[220,42,41],[382,170,161],[414,425,396],[506,504,509],[138,135,343],[3,45,225],[162,163,379],[344,343,135],[226,58,224],[519,521,53],[317,13,117],[57,496,495],[151,141,152],[335,120,347],[450,452,436],[146,21,371],[228,210,34],[38,430,1],[35,190,431],[313,103,112],[190,426,189],[320,125,126],[349,348,122],[2,67,457],[372,143,144],[56,233,55],[516,491,518],[449,448,8],[497,7,81],[305,9,99],[77,458,76],[269,270,70],[100,12,309],[235,53,232],[320,118,16],[94,85,306],[529,486,532],[463,148,464],[298,83,82],[62,275,61],[461,196,439],[57,227,56],[327,127,17],[199,29,512],[247,207,250],[85,72,300],[277,76,261],[432,26,464],[203,240,223],[122,121,332],[213,240,252],[76,277,77],[46,467,0],[228,241,242],[55,54,511],[113,114,333],[488,505,507],[298,71,84],[253,252,251],[5,264,66],[460,439,472],[66,258,5],[204,48,245],[406,188,404],[91,101,100],[283,65,282],[440,468,473],[521,522,54],[62,254,63],[484,108,9],[389,186,29],[435,446,6],[403,30,194],[93,94,307],[42,254,41],[284,282,281],[462,18,148],[102,316,101],[390,172,173],[381,160,169],[392,408,407],[72,267,289],[474,476,442],[319,111,331],[516,31,197],[395,193,413],[355,356,354],[288,290,260],[480,49,50],[157,374,156],[531,530,494],[522,521,492],[303,98,8],[394,415,184],[130,358,129],[283,265,294],[442,477,482],[510,511,512],[163,154,378],[397,417,190],[205,250,52],[134,135,361],[298,70,71],[125,320,16],[260,271,270],[98,10,107],[420,181,182],[525,19,138],[485,501,502],[362,351,363],[47,218,48],[423,421,398],[136,137,337],[146,145,360],[16,342,137],[154,153,367],[207,220,41],[166,25,383],[417,425,191],[446,78,6],[216,52,250],[500,128,484],[22,375,167],[135,134,344],[3,225,59],[384,163,164],[84,83,298],[345,343,344],[529,494,139],[217,50,248],[208,225,45],[257,41,62],[483,168,23],[106,314,105],[118,320,325],[346,335,347],[434,451,450],[371,159,23],[36,229,35],[303,91,10],[430,201,1],[34,426,35],[112,318,113],[350,348,349],[457,67,454],[143,372,154],[235,212,38],[121,120,330],[79,5,505],[305,99,11],[436,77,450],[271,70,270],[212,37,38],[326,320,109],[187,428,30],[301,85,94],[462,148,463],[88,299,9],[275,273,61],[148,147,464],[209,236,227],[491,524,519],[327,128,127],[153,376,152],[130,131,354],[502,58,495],[215,247,249],[84,295,85],[272,76,4],[432,167,26],[239,223,240],[319,330,120],[118,119,340],[246,252,240],[261,276,277],[467,46,468],[243,32,33],[69,6,268],[333,114,321],[518,517,516],[486,498,7],[426,34,189],[178,179,400],[20,369,158],[264,282,66],[470,47,471],[244,245,218],[258,68,5],[494,529,531],[392,187,403],[97,11,311],[263,75,284],[470,473,468],[490,520,199],[254,42,63],[386,175,184],[78,446,434],[399,393,409],[104,103,312],[171,388,170],[254,62,41],[266,63,286],[136,474,442],[131,130,339],[181,390,182],[161,169,160],[409,407,195],[528,527,493],[289,73,72],[438,475,474],[3,508,68],[198,197,412],[292,267,290],[481,50,445],[355,141,356],[374,166,165],[416,415,396],[523,511,54],[500,9,499],[286,64,294],[479,482,477],[357,141,140],[164,156,165],[50,444,445],[419,397,418],[361,135,359],[433,8,107],[422,398,421],[463,185,462],[197,491,516],[362,364,143],[112,111,313],[218,245,48],[397,419,423],[353,145,366],[341,337,342],[498,486,17],[370,142,153],[203,221,220],[383,177,27],[178,169,388],[192,191,414],[186,513,29],[39,250,40],[336,134,350],[227,226,209],[163,384,172],[133,132,348],[221,203,222],[322,111,319],[526,510,489],[387,28,185],[503,502,501],[314,115,114],[346,348,132],[452,450,451],[371,21,159],[228,34,35],[430,31,201],[426,190,35],[113,105,114],[457,454,456],[96,95,86],[367,143,154],[233,211,55],[319,120,323],[128,15,117],[448,447,89],[97,96,302],[458,77,436],[69,269,70],[38,1,235],[325,320,326],[494,533,139],[85,86,306],[299,90,9],[261,272,60],[464,147,432],[233,56,236],[17,124,327],[27,514,186],[250,249,247],[295,72,85],[268,278,262],[167,176,26],[237,239,213],[111,112,331],[62,61,257],[381,24,160],[241,253,214],[278,77,276],[465,467,440],[34,210,33],[488,509,79],[123,122,334],[151,376,161],[399,178,393],[80,281,79],[472,47,460],[243,244,206],[258,3,68],[107,8,98],[188,187,405],[311,108,13],[521,519,524],[285,265,284],[196,195,469],[495,58,57],[259,64,63],[175,386,174],[449,433,126],[403,194,392],[94,95,312],[257,40,41],[288,287,266],[474,18,438],[376,162,161],[173,183,182],[183,184,410],[31,516,201],[7,498,90],[291,290,267],[476,474,475],[395,197,31],[266,292,288],[49,480,479],[358,130,356],[427,193,38],[25,166,377],[532,531,529],[410,415,183],[512,490,199],[65,283,64],[478,137,443],[358,356,357],[374,165,156],[391,419,406],[360,353,361],[527,528,56],[402,421,391],[508,505,68],[181,180,385],[363,364,362],[316,102,111],[339,130,340],[204,49,48],[421,423,419],[365,353,366],[341,340,129],[220,221,42],[383,25,177],[54,53,521],[484,13,108],[414,191,425],[250,207,40],[344,134,336],[226,227,57],[379,163,172],[132,131,346],[451,444,51],[222,208,44],[201,517,1],[429,188,189],[15,115,317],[347,348,346],[178,388,179],[454,76,437],[146,368,145],[229,228,35],[431,36,35],[531,532,57],[314,114,105],[458,455,437],[154,372,155],[55,234,54],[322,319,323],[513,489,29],[302,87,88],[461,459,438],[268,262,69],[231,36,37],[14,109,320],[205,51,249],[86,87,96],[513,150,19],[299,7,90],[61,274,60],[147,158,432],[237,230,211],[505,488,79],[321,328,123],[306,86,95],[245,248,204],[300,86,85],[272,261,76],[176,167,24],[236,209,239],[331,112,332],[297,8,89],[238,213,253],[117,484,128],[74,279,75],[467,465,466],[210,243,33],[334,122,332],[22,151,375],[393,178,400],[264,5,79],[47,470,46],[242,214,244],[255,45,66],[139,533,138],[311,11,108],[405,187,392],[515,514,27],[279,74,284],[473,195,194],[8,82,303],[42,43,259],[386,184,183],[126,116,14],[307,94,103],[407,409,393],[39,257,60],[260,275,288],[460,48,459],[386,173,174],[315,12,100],[394,184,29],[80,79,509],[271,260,290],[137,478,16],[303,82,91],[395,412,197],[356,130,354],[290,288,292],[478,481,435],[374,157,166],[199,520,198],[504,503,487],[182,183,416],[135,19,359],[283,294,64],[443,137,482],[156,164,155],[418,189,419],[360,359,146],[72,295,71],[516,517,201],[128,500,127],[385,180,171],[422,421,180],[77,78,450],[132,133,364],[111,102,313],[338,335,339],[206,244,47],[424,398,420],[533,494,530],[365,364,133],[342,340,341],[40,207,41],[166,380,165],[150,515,149],[424,396,425],[123,124,345],[12,315,116],[58,59,224],[172,384,173],[14,315,109],[335,131,339],[444,50,51],[55,526,527],[208,45,44],[508,507,505],[172,171,379],[187,429,32],[314,106,115],[121,122,348],[169,178,387],[456,437,455],[368,157,156],[231,230,202],[190,191,431],[105,113,104],[520,490,523],[453,52,455],[155,145,156],[108,99,9],[53,235,1],[323,324,322],[9,305,88],[439,460,461],[262,269,69],[212,231,37],[110,326,109],[302,96,87],[39,256,2],[519,518,491],[296,75,88],[274,261,60],[432,158,22],[238,202,230],[114,115,329],[251,215,248],[315,14,116],[72,73,300],[276,262,278],[465,194,30],[211,236,237],[330,319,331],[496,532,486],[376,153,162],[202,238,241],[489,512,29],[263,7,75],[30,200,465],[178,399,28],[206,46,243],[124,123,328],[375,151,160],[433,107,12],[428,200,30],[187,30,403],[140,352,357],[264,79,281],[469,472,439],[66,65,255],[210,242,243],[337,137,342],[435,6,447],[138,493,525],[401,391,404],[97,308,96],[507,506,488],[73,285,74],[440,473,194],[64,43,44],[29,184,389],[116,126,433],[409,196,399],[103,94,312],[287,288,62],[475,459,48],[173,386,183],[410,184,415],[320,126,14],[484,117,13],[354,131,351],[291,71,290],[478,435,16],[26,381,169],[216,39,2],[411,413,193],[493,138,533],[141,357,356],[446,444,434],[293,289,267],[443,480,478],[166,157,377],[483,515,27],[416,183,415],[160,24,375],[111,110,316],[359,19,150],[293,294,265],[137,136,482],[378,155,164],[406,419,189],[38,37,427],[92,91,82],[361,359,360],[93,92,304],[487,501,80],[388,180,179],[179,180,402],[353,134,361],[338,340,119],[315,100,109],[46,206,47],[396,424,416],[366,364,365],[124,139,343],[524,197,198],[223,222,203],[380,175,174],[58,502,503],[423,425,397],[270,269,262],[345,124,343],[226,57,58],[173,165,174],[352,147,148],[346,131,335],[24,381,176],[453,436,452],[492,198,520],[42,221,43],[499,498,127],[449,8,433],[187,188,429],[115,106,317],[336,349,123],[26,169,387],[456,52,2],[23,157,371],[232,211,230],[528,530,56],[36,191,192],[318,104,113],[69,298,82],[216,2,52],[436,453,458],[515,483,149],[368,156,145],[53,54,232],[323,119,324],[22,369,151],[302,88,97],[459,461,460],[60,272,4],[202,229,231],[325,119,118],[39,40,257],[525,493,527],[509,488,506],[88,87,296],[381,26,176],[270,273,260],[158,147,20],[213,238,237],[329,115,327],[163,162,373],[310,102,101],[214,251,245],[86,73,74],[278,268,78],[194,465,440],[239,237,236],[330,332,121],[492,520,522],[253,241,238],[99,108,11],[279,284,75],[465,200,466],[245,244,214],[376,151,152],[321,123,334],[352,148,18],[405,392,404],[69,297,6],[280,66,282],[441,471,469],[244,243,242],[255,44,45],[6,89,447],[1,517,518],[407,404,392],[308,106,105],[495,496,497],[285,284,74],[195,473,441],[255,65,64],[389,184,175],[335,338,120],[433,12,116],[399,196,28],[104,96,105],[531,57,56],[275,62,288],[48,460,47],[390,173,182],[514,515,150],[394,199,412],[70,271,71],[480,443,479],[142,141,355]]);
}
}
